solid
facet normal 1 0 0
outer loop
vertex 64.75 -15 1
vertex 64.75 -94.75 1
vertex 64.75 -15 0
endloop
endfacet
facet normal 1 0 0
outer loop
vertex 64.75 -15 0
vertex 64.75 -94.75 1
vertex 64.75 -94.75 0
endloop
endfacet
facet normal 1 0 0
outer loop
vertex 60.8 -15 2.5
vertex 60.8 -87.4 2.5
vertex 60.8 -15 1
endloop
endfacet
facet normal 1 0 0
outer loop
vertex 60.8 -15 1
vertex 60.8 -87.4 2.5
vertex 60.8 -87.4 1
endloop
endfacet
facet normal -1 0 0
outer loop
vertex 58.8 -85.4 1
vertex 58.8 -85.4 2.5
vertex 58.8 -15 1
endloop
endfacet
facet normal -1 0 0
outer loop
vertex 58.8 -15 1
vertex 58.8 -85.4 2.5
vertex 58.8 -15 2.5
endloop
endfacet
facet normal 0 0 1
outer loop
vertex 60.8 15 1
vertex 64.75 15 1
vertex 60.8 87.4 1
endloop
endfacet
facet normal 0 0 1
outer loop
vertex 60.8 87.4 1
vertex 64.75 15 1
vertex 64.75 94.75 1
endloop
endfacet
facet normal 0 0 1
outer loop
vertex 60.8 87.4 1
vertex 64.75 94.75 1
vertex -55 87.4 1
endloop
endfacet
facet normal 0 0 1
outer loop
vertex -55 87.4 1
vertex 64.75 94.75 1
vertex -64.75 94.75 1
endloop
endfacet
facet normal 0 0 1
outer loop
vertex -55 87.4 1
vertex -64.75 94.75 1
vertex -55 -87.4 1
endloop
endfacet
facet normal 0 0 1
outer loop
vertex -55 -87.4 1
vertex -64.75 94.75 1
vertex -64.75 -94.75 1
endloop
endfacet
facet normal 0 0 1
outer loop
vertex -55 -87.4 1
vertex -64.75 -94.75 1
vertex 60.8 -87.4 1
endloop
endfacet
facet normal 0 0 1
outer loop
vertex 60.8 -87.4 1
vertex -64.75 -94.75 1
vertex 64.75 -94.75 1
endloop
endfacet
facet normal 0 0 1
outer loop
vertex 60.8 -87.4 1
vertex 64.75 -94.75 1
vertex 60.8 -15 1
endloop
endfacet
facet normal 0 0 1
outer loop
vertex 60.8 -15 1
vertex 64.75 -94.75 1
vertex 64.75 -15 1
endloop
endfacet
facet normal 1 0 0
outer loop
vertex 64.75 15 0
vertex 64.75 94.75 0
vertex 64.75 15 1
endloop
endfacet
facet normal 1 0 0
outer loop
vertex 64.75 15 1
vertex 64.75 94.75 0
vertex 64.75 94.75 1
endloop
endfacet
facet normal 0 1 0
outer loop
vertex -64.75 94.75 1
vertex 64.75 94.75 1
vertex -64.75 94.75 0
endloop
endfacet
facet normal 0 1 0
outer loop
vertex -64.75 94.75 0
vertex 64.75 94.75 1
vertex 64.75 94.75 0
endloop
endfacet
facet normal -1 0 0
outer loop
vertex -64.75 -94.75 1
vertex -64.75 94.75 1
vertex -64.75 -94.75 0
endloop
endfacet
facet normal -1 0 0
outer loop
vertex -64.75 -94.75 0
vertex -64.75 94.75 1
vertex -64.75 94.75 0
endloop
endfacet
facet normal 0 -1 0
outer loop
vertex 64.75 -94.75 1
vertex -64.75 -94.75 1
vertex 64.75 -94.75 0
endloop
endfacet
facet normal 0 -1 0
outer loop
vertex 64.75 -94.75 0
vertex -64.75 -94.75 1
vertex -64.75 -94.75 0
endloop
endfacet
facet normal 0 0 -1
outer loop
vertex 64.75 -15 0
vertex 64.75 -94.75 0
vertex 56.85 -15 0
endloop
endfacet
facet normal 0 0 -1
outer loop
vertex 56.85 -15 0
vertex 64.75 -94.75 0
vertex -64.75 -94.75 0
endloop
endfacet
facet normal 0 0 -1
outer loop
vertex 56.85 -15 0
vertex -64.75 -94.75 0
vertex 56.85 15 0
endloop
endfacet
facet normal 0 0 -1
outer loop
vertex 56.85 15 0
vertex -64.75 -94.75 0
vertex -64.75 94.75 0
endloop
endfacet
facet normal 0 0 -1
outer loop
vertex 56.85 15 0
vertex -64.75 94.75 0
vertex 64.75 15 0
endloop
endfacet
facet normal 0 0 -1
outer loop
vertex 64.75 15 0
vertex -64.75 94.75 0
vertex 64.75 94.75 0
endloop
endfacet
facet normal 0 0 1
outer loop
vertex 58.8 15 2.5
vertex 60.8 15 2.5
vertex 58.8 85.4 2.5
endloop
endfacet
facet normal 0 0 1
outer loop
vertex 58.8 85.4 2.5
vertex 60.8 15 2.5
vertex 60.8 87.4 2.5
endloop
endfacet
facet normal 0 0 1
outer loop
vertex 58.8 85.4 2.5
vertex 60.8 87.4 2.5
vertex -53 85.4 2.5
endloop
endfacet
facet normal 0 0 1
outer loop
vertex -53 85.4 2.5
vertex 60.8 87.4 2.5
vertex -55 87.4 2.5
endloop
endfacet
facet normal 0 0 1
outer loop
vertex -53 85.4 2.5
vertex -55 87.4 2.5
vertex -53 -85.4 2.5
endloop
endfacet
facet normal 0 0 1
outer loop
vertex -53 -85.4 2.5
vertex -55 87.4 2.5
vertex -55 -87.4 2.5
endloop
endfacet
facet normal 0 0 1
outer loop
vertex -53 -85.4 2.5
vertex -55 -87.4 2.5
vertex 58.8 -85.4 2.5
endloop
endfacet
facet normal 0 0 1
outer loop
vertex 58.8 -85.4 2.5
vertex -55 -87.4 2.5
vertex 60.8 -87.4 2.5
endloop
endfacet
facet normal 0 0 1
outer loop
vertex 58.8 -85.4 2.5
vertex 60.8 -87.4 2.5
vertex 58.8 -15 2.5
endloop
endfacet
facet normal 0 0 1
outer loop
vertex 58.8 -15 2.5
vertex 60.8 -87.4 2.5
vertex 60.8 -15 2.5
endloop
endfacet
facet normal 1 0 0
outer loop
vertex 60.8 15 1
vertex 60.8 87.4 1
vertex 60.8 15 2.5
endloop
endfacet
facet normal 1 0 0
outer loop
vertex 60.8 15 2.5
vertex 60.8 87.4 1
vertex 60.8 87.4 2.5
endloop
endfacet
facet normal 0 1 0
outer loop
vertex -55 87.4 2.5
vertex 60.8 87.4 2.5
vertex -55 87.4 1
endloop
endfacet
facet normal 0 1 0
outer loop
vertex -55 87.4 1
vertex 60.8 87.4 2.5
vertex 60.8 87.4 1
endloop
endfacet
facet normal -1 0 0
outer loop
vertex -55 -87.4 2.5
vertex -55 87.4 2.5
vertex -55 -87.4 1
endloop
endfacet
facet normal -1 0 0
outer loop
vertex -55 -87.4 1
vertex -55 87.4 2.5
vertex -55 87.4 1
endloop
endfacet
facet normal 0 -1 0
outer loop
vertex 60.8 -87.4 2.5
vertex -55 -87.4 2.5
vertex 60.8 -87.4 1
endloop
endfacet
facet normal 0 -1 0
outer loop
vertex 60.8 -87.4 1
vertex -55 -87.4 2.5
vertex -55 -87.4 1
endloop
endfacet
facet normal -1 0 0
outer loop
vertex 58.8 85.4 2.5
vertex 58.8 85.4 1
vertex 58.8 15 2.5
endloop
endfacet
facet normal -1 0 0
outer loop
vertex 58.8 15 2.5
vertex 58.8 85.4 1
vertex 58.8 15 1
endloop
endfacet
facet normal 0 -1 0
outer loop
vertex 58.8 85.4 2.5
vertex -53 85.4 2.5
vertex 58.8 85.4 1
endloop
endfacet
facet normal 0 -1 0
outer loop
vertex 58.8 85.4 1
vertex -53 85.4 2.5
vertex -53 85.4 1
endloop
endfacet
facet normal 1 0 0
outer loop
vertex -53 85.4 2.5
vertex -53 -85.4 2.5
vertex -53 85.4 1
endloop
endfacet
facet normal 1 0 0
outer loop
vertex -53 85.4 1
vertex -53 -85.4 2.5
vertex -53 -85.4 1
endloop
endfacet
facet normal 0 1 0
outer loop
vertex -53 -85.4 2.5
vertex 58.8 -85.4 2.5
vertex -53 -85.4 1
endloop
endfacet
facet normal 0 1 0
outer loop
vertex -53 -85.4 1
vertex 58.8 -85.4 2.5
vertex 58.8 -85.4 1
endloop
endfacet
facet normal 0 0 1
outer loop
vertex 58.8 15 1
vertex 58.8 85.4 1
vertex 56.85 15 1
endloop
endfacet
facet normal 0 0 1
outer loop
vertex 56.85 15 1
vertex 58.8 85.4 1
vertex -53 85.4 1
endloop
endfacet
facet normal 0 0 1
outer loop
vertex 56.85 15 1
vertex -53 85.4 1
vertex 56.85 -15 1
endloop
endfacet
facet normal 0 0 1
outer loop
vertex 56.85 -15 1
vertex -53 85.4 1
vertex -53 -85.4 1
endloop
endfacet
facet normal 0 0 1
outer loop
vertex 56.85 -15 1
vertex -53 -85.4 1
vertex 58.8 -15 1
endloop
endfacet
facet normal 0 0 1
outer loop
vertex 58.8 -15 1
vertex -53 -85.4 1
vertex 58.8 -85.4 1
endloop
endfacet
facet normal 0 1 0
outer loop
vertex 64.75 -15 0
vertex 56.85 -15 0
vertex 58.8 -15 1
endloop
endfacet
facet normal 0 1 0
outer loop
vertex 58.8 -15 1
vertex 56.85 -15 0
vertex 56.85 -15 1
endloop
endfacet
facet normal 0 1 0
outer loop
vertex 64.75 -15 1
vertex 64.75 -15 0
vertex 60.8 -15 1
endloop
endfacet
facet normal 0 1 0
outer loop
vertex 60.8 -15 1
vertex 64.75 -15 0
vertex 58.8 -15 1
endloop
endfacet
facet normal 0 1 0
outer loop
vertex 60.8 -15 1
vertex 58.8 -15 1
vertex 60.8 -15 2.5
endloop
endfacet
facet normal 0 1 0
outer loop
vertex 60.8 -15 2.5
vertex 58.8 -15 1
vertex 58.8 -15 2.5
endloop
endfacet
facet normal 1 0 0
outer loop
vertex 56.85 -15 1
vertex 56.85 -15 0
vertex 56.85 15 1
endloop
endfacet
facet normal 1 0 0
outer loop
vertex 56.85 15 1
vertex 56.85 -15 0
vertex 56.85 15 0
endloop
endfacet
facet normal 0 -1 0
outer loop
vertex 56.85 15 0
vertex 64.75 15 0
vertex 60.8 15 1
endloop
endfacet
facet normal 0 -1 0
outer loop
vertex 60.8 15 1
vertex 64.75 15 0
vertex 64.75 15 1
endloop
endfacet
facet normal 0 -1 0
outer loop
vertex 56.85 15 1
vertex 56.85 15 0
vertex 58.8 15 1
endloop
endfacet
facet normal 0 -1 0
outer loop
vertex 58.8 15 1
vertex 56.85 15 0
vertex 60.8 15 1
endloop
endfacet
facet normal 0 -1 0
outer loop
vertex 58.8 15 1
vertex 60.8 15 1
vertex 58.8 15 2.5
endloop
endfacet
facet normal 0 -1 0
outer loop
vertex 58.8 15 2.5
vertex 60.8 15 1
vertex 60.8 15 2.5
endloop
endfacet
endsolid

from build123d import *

# Parameters (mm, degrees)
SKETCH_1_W          = 129.5
SKETCH_1_H          = 189.5
EXTRUDE_1_DEPTH     = 1
SKETCH_2_W          = 115.8
SKETCH_2_H          = 174.8
SKETCH_2_W_2        = 111.8
SKETCH_2_H_2        = 170.8
EXTRUDE_2_DEPTH     = 1.5
SKETCH_3_W          = 7.9
SKETCH_3_H          = 30
CUT_EXTRUDE_1_DEPTH = 3


with BuildPart() as part:
    # 草图1 → 凸台-拉伸1 (new body)
    with BuildSketch(Plane.XY):
        Rectangle(SKETCH_1_W, SKETCH_1_H)
    extrude(amount=EXTRUDE_1_DEPTH)

    # 草图2 → 凸台-拉伸2 (add)
    with BuildSketch(Plane.XY.offset(1)):
        with Locations((2.9, 0)):
            Rectangle(SKETCH_2_W, SKETCH_2_H)
        with Locations((2.9, 0)):
            Rectangle(SKETCH_2_W_2, SKETCH_2_H_2, mode=Mode.SUBTRACT)
    extrude(amount=EXTRUDE_2_DEPTH)

    # 草图3 → 切除-拉伸1 (cut)
    with BuildSketch(Plane.XY.offset(2.5)):
        with Locations((60.8, 0)):
            Rectangle(SKETCH_3_W, SKETCH_3_H)
    extrude(amount=-CUT_EXTRUDE_1_DEPTH, mode=Mode.SUBTRACT)


solid = part.part
